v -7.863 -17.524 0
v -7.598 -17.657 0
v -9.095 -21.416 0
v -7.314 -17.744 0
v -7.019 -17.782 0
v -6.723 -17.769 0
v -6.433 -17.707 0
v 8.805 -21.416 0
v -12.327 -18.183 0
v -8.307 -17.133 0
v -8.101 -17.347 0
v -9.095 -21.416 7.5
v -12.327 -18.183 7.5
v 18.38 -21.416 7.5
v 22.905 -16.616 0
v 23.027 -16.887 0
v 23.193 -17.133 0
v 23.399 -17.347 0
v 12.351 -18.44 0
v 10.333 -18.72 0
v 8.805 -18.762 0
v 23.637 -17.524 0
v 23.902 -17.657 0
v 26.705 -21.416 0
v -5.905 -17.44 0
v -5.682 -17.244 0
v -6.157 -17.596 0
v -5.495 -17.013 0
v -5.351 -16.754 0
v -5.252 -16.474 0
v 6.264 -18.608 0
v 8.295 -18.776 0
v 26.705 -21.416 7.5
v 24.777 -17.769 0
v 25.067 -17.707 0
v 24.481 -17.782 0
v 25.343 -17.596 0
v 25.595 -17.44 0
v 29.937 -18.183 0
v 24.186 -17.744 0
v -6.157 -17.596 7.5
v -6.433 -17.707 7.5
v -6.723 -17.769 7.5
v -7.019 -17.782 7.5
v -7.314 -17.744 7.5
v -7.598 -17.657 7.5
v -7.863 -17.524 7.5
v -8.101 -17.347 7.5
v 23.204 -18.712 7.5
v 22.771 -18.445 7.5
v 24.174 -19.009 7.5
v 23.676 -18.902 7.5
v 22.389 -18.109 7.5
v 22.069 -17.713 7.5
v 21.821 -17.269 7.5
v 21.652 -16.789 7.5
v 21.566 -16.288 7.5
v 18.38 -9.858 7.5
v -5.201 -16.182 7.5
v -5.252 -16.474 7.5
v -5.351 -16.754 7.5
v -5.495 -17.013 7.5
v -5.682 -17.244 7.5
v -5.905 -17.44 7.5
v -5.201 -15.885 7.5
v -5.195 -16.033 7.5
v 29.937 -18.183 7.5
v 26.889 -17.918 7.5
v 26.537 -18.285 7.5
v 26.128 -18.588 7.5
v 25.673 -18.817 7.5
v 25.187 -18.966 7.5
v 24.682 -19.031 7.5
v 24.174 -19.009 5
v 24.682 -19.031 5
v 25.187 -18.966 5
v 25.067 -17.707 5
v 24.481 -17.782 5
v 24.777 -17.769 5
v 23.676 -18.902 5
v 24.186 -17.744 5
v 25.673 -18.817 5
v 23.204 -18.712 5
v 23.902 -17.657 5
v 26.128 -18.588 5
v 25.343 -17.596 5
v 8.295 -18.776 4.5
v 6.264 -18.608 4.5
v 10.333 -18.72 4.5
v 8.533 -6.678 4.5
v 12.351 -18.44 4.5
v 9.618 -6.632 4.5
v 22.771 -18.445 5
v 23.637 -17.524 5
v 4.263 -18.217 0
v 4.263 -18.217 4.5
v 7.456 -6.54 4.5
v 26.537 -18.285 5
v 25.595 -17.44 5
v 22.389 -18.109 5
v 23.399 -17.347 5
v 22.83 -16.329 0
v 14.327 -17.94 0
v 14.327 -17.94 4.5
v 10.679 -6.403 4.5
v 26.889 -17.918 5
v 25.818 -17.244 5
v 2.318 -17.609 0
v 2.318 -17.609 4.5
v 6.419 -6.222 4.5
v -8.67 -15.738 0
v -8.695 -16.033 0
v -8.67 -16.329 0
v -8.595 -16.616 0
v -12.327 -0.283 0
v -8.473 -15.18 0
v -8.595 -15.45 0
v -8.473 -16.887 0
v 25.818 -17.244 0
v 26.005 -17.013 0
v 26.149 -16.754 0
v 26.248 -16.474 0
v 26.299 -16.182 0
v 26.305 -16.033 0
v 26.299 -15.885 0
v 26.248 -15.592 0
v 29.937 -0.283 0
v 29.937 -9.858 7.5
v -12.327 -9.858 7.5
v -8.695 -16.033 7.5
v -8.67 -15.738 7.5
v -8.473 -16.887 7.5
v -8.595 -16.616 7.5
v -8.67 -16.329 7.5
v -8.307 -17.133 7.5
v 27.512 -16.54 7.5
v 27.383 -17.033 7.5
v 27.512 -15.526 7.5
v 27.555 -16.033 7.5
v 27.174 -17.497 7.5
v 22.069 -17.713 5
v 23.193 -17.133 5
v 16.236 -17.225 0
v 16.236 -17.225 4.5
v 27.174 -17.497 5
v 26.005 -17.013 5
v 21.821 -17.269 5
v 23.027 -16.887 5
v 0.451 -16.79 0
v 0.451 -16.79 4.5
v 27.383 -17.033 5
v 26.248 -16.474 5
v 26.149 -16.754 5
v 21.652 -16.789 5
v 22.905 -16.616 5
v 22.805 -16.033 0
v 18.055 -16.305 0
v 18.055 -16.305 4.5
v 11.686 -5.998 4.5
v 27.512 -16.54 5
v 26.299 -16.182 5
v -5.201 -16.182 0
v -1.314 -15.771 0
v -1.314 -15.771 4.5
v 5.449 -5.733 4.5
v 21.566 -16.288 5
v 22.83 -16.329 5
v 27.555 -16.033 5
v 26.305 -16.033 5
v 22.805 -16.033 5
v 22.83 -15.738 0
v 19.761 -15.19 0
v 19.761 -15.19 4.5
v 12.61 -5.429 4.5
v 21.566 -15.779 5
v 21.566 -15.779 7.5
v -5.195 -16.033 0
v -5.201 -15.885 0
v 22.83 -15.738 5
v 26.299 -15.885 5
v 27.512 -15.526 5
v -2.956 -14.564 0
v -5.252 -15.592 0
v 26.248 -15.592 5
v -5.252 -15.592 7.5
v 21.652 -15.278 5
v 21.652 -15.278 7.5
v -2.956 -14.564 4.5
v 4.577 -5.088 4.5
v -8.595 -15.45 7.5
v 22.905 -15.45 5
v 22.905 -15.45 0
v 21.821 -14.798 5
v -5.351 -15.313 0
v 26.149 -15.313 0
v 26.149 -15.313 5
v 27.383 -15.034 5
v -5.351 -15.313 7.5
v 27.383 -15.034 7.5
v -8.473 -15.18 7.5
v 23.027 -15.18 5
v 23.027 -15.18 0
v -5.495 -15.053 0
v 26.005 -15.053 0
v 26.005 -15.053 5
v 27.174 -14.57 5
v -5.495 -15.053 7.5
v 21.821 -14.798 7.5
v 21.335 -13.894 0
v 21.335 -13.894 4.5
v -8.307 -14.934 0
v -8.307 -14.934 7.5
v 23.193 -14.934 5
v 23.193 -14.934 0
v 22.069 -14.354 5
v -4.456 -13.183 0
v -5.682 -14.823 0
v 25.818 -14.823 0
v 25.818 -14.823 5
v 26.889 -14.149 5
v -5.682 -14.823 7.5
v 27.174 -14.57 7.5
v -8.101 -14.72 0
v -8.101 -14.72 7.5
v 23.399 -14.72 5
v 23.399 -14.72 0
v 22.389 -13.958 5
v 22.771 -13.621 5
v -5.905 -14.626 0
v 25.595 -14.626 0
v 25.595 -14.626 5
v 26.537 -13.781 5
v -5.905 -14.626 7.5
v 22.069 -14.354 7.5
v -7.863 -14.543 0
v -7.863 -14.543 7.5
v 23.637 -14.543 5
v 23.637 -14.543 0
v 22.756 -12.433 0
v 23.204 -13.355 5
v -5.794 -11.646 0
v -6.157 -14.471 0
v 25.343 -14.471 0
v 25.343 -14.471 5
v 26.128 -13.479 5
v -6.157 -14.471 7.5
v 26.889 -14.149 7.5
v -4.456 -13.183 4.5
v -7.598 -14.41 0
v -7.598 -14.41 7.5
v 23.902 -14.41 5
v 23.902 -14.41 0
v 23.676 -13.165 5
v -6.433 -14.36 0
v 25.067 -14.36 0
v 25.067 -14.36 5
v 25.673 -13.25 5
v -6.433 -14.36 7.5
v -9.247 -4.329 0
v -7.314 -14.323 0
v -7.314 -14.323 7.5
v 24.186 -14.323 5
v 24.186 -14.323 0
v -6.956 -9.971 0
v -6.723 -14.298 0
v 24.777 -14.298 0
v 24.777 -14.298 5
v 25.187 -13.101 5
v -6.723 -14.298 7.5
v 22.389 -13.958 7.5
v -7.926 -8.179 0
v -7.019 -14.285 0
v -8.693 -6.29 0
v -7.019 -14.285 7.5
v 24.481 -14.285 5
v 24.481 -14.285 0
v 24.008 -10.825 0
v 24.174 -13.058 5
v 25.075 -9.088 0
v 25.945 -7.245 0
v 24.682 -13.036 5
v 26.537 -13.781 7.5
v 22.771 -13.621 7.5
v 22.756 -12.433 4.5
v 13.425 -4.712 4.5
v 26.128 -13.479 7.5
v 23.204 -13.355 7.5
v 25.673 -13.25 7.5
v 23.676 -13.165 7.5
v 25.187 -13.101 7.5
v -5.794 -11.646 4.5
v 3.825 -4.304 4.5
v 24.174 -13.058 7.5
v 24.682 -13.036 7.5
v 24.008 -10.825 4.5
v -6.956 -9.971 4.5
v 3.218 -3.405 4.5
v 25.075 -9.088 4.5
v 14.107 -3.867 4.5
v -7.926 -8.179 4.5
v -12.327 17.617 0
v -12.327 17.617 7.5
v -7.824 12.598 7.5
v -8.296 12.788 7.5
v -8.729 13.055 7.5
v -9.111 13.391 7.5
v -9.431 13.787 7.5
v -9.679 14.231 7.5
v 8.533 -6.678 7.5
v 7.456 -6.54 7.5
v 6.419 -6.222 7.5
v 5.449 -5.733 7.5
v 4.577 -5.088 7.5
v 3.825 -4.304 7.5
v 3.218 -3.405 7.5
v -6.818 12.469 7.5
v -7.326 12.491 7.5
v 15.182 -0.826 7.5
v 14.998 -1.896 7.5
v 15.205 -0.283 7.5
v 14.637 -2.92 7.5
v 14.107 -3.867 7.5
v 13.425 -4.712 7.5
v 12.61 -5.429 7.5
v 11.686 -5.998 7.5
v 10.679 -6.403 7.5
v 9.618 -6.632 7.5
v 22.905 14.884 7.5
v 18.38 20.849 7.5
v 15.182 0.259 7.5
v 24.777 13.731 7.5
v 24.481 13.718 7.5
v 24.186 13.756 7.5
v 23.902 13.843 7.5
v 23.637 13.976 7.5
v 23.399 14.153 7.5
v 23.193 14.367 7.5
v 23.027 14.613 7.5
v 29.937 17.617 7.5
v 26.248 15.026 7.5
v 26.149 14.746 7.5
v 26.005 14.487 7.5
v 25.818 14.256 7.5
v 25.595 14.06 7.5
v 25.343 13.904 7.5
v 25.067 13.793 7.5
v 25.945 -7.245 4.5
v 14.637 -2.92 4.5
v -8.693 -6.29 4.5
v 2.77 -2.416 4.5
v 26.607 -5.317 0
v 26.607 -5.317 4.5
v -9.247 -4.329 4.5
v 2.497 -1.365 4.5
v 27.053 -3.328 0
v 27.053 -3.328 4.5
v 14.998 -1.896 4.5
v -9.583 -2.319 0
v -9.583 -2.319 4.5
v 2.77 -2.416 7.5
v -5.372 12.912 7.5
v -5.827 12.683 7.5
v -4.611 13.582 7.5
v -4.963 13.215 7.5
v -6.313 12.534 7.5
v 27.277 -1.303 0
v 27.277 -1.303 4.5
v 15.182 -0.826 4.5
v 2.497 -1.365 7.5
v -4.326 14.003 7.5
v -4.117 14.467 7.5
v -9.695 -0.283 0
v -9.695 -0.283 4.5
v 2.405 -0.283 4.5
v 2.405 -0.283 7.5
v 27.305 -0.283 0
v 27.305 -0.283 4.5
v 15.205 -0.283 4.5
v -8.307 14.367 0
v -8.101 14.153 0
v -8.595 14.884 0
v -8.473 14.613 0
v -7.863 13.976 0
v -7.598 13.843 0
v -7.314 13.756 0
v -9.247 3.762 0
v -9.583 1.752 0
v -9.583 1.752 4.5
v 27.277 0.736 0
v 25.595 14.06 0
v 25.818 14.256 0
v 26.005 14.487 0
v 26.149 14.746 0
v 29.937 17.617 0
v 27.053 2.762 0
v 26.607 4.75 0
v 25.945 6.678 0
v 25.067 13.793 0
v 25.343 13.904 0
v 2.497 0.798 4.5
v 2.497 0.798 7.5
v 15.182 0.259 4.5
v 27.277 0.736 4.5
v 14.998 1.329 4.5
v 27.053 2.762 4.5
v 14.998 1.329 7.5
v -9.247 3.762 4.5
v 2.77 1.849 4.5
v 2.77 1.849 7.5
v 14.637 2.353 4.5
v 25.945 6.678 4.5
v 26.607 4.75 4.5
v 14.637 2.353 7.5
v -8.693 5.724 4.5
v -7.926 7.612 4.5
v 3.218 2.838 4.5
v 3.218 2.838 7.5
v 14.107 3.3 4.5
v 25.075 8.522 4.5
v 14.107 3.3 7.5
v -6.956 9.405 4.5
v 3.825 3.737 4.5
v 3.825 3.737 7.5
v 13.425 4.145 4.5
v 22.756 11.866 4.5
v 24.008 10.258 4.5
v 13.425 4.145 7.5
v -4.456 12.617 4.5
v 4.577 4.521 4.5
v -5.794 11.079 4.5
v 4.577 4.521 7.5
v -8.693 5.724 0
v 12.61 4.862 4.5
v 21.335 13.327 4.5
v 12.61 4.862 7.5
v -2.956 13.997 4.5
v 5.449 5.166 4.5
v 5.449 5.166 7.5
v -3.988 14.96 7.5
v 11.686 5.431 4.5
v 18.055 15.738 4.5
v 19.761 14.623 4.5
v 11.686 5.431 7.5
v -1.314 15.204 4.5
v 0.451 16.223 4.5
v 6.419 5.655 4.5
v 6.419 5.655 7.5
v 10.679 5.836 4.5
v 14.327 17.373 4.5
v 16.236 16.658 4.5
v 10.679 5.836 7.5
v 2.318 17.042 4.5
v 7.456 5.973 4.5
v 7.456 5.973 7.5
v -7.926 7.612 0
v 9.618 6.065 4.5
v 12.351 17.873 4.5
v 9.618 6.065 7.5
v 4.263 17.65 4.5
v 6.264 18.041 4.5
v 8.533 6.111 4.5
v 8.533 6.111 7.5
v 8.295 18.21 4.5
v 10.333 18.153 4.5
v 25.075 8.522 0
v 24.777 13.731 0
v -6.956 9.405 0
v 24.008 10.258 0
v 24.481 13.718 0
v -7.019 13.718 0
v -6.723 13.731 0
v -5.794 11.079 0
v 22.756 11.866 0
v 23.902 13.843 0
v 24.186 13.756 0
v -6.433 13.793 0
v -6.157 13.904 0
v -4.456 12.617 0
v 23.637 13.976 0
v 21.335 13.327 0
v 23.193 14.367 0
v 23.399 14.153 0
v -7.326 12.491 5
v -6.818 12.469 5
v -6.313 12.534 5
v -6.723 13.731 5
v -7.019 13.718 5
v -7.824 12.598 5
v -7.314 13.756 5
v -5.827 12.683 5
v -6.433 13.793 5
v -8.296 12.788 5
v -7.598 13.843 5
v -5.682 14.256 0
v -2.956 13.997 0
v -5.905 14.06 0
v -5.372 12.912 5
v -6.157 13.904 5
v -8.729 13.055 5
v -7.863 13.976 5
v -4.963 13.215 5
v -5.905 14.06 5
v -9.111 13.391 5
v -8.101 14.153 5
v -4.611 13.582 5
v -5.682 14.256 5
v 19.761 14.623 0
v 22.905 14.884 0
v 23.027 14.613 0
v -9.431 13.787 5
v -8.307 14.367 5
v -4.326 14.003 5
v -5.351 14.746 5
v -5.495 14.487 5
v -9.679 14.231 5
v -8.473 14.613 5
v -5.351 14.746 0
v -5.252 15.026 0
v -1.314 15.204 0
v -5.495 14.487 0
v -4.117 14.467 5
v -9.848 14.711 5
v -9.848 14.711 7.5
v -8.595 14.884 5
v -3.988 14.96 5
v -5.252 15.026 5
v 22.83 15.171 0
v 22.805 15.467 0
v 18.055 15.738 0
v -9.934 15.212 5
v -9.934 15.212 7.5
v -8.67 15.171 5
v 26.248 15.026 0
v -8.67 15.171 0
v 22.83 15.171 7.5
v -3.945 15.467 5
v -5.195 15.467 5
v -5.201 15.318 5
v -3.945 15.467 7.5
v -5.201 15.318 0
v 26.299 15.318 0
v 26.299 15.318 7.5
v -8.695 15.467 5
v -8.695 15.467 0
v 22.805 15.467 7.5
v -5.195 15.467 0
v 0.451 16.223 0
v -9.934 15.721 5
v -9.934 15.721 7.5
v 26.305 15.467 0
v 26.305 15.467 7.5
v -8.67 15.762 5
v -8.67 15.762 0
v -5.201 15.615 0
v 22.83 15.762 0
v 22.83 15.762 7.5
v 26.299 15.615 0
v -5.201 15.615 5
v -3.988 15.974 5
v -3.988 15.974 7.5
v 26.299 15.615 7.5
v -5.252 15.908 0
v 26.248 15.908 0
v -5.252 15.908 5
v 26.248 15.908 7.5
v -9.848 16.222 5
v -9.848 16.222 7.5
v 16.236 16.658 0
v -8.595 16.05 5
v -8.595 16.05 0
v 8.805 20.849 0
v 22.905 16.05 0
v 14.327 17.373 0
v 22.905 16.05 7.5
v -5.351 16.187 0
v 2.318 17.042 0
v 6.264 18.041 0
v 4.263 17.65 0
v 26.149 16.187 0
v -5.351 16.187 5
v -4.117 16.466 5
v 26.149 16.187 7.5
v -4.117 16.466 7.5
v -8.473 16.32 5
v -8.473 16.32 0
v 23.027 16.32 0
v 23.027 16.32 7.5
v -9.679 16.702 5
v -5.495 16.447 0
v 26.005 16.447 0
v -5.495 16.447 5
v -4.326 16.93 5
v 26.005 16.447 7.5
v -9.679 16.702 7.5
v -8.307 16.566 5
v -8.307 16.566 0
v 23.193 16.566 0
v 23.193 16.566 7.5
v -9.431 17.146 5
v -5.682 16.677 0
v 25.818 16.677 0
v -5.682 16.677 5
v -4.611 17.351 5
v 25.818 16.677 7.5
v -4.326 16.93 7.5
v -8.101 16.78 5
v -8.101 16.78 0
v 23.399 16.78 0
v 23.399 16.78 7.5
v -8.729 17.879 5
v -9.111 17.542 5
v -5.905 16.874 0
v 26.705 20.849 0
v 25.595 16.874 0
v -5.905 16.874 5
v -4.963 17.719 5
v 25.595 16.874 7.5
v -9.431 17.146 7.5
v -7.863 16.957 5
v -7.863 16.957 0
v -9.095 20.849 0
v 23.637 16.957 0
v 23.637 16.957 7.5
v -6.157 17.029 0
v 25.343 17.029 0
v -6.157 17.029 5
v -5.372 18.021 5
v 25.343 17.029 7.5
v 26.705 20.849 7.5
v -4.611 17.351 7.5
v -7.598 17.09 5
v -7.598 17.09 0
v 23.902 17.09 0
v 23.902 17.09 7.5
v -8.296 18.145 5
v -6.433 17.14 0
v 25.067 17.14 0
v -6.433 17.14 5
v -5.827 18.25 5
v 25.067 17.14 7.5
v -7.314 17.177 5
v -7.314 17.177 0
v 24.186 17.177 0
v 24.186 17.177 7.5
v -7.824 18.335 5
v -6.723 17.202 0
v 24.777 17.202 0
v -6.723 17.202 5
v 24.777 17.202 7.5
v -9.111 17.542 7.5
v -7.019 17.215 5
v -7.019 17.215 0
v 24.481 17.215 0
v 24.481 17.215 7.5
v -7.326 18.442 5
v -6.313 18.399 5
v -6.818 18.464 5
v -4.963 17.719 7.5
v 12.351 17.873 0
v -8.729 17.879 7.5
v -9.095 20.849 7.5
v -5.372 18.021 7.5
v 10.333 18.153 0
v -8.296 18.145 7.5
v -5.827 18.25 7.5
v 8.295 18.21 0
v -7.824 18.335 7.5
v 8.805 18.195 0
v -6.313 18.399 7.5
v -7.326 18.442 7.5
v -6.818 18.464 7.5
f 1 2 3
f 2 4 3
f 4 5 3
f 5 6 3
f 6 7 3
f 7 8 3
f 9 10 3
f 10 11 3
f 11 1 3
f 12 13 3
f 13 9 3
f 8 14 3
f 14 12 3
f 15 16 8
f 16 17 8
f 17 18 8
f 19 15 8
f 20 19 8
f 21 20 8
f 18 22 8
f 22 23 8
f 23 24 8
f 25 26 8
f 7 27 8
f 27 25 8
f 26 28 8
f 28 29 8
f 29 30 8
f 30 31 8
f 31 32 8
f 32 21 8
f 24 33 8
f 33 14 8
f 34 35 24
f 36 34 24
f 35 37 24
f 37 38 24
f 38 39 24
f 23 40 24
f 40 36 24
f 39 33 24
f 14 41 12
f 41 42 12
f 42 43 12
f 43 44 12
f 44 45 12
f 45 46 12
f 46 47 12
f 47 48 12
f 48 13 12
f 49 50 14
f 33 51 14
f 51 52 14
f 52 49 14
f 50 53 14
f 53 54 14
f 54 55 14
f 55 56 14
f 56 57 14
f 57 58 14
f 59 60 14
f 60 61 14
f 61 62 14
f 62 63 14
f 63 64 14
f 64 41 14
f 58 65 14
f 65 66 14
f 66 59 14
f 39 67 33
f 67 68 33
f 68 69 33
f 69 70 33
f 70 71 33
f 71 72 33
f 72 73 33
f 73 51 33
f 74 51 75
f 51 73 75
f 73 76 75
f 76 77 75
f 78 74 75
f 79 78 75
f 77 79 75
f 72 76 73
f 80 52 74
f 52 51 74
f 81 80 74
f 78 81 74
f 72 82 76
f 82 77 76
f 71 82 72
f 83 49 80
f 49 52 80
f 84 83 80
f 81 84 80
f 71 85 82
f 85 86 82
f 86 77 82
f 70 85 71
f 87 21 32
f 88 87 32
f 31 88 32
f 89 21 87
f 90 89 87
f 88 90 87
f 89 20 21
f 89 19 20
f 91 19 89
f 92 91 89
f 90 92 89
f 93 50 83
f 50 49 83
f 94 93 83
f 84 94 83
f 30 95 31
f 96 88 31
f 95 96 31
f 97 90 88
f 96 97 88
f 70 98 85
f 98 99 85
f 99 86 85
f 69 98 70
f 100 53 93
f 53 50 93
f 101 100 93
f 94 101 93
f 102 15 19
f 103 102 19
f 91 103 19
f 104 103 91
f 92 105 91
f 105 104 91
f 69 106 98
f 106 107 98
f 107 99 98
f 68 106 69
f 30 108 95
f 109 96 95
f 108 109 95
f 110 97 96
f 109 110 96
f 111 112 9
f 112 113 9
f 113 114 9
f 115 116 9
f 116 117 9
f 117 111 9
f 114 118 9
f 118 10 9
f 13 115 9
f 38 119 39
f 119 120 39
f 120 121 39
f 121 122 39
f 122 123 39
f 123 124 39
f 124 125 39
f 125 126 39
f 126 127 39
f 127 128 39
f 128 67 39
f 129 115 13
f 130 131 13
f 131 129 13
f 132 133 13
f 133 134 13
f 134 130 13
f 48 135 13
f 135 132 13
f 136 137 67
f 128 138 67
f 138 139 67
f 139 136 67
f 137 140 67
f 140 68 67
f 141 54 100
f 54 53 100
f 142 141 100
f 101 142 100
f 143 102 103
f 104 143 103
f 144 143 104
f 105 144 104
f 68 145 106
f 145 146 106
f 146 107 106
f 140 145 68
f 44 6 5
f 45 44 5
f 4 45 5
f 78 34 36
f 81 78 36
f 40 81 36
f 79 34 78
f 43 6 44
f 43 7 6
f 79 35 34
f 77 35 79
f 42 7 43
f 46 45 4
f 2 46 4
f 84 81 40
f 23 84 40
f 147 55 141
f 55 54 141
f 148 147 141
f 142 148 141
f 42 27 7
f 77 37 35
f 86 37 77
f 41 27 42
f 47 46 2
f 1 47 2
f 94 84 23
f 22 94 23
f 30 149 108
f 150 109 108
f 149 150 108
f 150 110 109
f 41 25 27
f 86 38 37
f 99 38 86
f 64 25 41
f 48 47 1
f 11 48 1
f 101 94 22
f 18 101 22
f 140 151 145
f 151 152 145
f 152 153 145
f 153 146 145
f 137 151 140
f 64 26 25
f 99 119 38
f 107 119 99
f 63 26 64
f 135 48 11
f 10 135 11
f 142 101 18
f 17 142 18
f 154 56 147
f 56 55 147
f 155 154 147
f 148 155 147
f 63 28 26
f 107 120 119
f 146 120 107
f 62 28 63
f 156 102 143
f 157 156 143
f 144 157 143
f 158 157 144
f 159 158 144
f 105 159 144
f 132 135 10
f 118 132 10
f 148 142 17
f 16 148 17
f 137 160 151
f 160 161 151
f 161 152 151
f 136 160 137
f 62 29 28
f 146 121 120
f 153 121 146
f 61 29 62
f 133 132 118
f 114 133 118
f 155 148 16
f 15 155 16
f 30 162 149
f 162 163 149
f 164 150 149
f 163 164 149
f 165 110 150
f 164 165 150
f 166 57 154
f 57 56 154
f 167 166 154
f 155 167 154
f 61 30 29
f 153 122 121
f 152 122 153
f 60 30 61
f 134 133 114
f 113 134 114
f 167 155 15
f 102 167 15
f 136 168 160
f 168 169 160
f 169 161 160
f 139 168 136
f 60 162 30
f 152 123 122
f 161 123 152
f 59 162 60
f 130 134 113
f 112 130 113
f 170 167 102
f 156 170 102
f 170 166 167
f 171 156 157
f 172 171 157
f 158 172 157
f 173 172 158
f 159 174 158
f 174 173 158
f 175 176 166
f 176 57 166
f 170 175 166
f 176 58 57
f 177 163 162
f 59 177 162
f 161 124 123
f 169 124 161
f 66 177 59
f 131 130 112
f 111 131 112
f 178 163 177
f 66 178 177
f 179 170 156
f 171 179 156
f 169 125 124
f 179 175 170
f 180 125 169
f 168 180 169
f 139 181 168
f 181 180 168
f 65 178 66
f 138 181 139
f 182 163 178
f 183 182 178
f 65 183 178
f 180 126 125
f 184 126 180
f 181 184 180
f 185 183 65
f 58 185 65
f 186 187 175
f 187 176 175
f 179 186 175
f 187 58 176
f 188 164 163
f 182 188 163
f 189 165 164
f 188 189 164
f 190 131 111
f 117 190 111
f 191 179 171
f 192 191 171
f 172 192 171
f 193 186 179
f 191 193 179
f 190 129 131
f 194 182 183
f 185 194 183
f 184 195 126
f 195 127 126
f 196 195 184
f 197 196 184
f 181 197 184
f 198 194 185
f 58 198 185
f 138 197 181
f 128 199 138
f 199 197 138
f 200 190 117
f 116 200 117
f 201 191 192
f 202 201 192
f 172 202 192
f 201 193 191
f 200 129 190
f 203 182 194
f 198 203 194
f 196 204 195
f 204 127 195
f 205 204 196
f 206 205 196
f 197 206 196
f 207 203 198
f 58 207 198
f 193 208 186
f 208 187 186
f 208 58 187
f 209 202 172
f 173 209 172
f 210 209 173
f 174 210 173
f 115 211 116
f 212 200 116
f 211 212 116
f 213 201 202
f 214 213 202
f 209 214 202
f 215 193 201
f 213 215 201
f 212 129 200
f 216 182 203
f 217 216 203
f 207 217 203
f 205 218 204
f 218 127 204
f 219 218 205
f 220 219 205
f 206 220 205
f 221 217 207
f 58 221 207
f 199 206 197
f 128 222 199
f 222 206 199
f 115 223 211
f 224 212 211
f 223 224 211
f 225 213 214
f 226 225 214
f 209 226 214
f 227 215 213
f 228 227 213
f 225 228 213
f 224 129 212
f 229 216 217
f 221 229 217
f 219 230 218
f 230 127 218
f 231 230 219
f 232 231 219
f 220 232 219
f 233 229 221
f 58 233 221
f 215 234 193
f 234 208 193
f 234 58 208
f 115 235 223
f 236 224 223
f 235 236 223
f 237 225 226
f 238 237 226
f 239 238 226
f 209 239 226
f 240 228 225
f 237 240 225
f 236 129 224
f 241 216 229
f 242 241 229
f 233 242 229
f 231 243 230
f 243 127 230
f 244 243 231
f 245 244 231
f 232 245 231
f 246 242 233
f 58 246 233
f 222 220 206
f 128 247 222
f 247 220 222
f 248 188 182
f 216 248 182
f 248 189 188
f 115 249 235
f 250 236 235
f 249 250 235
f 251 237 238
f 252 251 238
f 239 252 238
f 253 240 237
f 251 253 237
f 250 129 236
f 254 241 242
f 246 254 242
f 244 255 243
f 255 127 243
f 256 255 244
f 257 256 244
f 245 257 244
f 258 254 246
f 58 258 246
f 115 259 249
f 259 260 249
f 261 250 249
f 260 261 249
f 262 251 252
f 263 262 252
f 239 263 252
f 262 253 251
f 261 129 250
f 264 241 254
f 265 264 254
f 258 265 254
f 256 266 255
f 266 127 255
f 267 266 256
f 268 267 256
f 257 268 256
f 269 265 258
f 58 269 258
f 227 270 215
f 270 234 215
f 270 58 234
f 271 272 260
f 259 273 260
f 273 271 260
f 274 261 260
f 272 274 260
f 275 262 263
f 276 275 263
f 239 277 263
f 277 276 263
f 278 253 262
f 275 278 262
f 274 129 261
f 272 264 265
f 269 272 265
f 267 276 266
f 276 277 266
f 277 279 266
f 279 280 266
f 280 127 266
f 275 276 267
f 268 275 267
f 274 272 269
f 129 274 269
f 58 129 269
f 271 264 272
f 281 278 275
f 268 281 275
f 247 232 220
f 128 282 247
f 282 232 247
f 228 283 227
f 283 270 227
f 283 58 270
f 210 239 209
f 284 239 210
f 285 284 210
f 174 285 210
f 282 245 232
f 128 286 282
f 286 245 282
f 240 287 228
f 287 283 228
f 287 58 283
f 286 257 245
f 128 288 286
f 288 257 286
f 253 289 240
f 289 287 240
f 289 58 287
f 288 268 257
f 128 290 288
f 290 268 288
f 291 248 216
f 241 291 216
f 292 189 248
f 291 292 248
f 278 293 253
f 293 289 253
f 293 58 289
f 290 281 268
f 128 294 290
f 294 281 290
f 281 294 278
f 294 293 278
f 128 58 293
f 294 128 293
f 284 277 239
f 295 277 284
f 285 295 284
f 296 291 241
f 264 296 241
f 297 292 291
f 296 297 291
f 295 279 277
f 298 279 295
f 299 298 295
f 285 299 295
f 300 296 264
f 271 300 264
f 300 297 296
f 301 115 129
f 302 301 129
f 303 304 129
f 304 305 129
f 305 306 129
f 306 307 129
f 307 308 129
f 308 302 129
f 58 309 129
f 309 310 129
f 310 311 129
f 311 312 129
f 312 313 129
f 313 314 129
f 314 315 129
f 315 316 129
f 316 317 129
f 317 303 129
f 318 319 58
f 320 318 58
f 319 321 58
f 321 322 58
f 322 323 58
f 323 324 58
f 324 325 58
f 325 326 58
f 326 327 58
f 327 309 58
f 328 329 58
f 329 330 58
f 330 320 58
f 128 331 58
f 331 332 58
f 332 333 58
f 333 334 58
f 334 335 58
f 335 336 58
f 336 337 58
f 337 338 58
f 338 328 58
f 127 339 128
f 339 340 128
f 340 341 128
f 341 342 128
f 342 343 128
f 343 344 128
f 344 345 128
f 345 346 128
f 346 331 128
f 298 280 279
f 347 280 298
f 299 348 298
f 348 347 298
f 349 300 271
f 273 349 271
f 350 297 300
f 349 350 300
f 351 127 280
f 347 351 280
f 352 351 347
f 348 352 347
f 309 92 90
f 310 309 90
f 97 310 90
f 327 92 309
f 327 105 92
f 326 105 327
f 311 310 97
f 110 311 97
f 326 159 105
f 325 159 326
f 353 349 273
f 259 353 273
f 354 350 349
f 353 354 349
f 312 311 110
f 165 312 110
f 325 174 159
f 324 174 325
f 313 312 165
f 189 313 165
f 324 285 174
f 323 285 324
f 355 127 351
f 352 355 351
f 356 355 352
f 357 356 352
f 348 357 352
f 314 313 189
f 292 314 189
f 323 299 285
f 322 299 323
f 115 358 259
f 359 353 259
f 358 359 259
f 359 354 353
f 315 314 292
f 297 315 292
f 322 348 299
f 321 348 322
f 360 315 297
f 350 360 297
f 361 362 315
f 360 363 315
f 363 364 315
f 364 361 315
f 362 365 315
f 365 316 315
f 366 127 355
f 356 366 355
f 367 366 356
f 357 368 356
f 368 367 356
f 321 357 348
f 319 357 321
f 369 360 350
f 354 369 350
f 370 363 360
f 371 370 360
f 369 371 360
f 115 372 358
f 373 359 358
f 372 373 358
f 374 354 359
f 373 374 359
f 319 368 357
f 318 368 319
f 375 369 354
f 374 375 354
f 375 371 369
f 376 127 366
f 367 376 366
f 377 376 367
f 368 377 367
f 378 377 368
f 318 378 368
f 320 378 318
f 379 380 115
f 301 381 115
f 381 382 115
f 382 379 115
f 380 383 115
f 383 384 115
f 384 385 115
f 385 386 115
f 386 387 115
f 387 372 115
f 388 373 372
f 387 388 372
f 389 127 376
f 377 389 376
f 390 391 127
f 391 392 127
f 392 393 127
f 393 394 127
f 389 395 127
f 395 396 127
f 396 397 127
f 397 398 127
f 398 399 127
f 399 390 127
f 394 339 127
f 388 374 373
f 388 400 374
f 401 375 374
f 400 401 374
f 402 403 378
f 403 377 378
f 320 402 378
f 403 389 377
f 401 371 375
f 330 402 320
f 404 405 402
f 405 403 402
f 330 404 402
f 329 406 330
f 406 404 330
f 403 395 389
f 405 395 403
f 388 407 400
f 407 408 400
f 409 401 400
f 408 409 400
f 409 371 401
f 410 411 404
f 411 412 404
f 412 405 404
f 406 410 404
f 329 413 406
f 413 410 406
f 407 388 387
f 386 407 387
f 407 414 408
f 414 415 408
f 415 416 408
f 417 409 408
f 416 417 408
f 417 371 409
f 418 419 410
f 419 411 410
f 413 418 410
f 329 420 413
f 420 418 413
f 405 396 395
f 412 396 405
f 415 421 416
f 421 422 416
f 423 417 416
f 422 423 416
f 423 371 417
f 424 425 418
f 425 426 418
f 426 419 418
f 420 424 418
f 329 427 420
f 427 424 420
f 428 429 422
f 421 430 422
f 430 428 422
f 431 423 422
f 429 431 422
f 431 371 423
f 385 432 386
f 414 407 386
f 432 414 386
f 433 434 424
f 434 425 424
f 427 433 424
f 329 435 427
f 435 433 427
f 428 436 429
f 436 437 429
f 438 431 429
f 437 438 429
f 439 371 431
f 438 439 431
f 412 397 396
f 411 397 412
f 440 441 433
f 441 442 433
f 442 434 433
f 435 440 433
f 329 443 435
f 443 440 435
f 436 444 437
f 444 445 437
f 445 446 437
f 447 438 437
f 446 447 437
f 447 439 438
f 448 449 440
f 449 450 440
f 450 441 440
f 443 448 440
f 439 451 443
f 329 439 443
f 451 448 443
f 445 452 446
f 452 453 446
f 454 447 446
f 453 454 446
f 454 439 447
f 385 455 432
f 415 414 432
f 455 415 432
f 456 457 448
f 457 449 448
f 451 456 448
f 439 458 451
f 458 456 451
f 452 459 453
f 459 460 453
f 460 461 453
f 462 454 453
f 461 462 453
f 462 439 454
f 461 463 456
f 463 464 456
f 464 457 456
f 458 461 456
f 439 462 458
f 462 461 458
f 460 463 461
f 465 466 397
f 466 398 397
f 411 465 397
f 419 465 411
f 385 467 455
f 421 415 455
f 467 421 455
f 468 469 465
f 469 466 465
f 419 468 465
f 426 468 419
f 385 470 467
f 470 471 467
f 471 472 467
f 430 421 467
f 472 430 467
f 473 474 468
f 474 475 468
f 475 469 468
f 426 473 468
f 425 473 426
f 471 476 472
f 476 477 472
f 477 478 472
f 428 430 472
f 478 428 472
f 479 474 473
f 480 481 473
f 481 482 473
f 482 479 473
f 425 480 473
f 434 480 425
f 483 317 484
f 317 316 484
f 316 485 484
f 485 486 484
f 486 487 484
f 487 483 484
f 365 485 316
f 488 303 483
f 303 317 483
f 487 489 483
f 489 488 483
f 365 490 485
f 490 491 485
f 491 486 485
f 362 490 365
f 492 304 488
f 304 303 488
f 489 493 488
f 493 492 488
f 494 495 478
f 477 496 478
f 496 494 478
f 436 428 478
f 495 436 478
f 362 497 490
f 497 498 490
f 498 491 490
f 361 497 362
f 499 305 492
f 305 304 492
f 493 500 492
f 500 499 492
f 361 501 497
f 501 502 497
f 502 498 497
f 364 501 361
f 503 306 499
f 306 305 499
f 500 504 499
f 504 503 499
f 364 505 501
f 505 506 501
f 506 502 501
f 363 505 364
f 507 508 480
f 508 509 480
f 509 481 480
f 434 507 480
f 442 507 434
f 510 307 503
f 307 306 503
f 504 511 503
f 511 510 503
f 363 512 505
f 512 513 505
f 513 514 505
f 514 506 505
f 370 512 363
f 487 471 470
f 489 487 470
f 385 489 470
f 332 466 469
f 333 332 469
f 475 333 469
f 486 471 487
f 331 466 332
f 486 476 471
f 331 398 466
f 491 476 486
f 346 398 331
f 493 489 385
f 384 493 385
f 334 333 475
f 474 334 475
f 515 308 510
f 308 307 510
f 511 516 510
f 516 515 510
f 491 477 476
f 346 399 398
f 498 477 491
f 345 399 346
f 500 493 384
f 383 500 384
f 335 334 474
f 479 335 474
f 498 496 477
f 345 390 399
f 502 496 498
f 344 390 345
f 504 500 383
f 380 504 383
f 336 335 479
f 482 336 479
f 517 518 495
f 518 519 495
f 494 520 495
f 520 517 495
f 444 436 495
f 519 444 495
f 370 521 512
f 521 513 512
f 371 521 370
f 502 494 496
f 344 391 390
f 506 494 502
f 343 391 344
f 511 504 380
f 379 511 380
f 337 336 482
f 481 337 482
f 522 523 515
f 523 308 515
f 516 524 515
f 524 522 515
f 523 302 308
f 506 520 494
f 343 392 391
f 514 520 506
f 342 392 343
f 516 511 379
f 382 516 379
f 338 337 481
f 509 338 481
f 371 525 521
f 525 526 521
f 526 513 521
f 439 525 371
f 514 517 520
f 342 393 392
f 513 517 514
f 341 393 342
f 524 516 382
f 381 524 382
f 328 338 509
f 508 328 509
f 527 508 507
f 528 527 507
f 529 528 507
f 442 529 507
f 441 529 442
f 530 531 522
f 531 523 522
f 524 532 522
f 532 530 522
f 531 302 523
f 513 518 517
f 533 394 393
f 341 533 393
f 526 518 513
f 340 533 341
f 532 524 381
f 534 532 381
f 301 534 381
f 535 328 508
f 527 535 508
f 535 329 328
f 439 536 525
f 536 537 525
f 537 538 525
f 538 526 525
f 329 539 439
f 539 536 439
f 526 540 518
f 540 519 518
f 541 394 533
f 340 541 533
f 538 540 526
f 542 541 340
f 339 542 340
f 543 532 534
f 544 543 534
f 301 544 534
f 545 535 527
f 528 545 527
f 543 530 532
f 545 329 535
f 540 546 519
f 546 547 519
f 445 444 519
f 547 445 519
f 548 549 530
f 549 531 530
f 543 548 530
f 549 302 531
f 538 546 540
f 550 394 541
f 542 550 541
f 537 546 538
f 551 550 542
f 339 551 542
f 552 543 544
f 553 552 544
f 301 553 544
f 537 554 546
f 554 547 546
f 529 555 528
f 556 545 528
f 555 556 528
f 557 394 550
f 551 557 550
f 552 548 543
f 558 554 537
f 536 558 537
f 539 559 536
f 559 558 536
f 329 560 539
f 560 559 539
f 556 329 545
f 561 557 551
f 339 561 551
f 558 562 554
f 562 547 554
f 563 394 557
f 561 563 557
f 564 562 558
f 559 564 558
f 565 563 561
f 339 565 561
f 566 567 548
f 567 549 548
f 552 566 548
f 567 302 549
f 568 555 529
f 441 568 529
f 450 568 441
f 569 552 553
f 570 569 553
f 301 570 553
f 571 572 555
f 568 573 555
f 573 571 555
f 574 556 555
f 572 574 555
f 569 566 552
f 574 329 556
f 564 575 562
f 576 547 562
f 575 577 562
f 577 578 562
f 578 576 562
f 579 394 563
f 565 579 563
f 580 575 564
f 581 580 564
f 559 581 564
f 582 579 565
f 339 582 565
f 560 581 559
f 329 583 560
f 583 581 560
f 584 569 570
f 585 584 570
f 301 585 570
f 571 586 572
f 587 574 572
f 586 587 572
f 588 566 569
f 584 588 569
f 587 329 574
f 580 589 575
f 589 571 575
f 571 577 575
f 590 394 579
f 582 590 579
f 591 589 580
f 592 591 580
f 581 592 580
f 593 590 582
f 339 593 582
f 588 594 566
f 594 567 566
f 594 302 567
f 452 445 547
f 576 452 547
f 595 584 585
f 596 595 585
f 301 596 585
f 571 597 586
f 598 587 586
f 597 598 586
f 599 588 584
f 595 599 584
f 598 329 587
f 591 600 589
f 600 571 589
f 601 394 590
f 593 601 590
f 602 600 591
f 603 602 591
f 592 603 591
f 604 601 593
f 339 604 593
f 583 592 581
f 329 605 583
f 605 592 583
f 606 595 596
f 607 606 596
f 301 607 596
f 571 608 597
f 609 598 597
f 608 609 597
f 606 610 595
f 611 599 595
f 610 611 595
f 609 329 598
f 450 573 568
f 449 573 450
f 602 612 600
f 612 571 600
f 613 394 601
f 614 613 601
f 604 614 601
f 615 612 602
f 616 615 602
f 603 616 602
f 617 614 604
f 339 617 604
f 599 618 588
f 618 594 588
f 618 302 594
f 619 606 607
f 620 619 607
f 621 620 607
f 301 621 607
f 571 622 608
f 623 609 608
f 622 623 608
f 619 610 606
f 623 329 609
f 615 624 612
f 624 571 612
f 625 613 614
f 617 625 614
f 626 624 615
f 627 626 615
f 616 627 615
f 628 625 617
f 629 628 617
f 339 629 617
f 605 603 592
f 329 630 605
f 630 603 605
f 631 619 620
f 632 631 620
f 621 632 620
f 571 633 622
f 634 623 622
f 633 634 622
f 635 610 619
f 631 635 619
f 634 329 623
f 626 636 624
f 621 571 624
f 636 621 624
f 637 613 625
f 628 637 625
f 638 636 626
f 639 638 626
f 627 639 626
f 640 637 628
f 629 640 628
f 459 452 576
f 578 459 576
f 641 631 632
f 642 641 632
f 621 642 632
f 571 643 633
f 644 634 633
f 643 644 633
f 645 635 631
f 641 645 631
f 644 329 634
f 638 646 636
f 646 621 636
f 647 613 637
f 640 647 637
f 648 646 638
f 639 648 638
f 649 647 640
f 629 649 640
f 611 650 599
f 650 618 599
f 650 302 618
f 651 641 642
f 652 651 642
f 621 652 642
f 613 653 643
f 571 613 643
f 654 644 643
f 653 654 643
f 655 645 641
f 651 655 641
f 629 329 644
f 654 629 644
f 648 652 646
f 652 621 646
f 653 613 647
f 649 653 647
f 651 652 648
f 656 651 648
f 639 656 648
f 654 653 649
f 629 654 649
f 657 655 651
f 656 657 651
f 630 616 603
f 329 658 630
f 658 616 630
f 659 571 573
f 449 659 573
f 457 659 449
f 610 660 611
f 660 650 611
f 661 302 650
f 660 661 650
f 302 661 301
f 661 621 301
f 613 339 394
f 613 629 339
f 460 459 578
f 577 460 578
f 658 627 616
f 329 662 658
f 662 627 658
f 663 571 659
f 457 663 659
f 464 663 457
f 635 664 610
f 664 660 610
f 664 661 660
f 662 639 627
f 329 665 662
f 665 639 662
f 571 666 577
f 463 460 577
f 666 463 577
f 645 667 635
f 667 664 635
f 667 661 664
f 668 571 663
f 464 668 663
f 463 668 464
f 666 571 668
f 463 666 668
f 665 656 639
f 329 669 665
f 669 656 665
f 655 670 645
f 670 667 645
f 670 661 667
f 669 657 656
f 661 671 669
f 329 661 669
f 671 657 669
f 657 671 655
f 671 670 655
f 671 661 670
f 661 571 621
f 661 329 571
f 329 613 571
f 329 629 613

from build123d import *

# Parameters (mm, degrees)
SKETCH1_R           = 18.5
SKETCH1_R_2         = 1.75
BOSS_EXTRUDE1_DEPTH = 4.5
SKETCH2_R           = 6.4
SKETCH2_R_2         = 1.75
BOSS_EXTRUDE2_DEPTH = 3
SKETCH3_R           = 3
CUT_EXTRUDE1_DEPTH  = 2.5


with BuildPart() as part:
    # Sketch1 → Boss-Extrude1 (new body)
    with BuildSketch(Plane.XY):
        Polygon((-12.327463607, 17.616562478), (-12.327463607, -18.183437522), (-9.095169285, -21.415731844), (26.704830715, -21.415731844), (29.937125036, -18.183437522), (29.937125036, 17.616562478), (26.704830715, 20.848856799), (-9.095169285, 20.848856799), align=None)
        with Locations((8.804830715, -0.283437522)):
            Circle(SKETCH1_R, mode=Mode.SUBTRACT)
        with Locations((-6.945169285, 15.466562478)):
            Circle(SKETCH1_R_2, mode=Mode.SUBTRACT)
        with Locations((-6.945169285, -16.033437522)):
            Circle(SKETCH1_R_2, mode=Mode.SUBTRACT)
        with Locations((24.554830715, -16.033437522)):
            Circle(SKETCH1_R_2, mode=Mode.SUBTRACT)
        with Locations((24.554830715, 15.466562478)):
            Circle(SKETCH1_R_2, mode=Mode.SUBTRACT)
    extrude(amount=BOSS_EXTRUDE1_DEPTH)

    # Sketch2 → Boss-Extrude2 (add)
    with BuildSketch(Plane.XY.offset(4.5)):
        Polygon((-12.327463607, 17.616562478), (-9.095169285, 20.848856799), (26.704830715, 20.848856799), (29.937125036, 17.616562478), (29.937125036, -18.183437522), (26.704830715, -21.415731844), (-9.095169285, -21.415731844), (-12.327463607, -18.183437522), align=None)
        with Locations((8.804830715, -0.283437522)):
            Circle(SKETCH2_R, mode=Mode.SUBTRACT)
        with Locations((-6.945169285, 15.466562478)):
            Circle(SKETCH2_R_2, mode=Mode.SUBTRACT)
        with Locations((24.554830715, 15.466562478)):
            Circle(SKETCH2_R_2, mode=Mode.SUBTRACT)
        with Locations((24.554830715, -16.033437522)):
            Circle(SKETCH2_R_2, mode=Mode.SUBTRACT)
        with Locations((-6.945169285, -16.033437522)):
            Circle(SKETCH2_R_2, mode=Mode.SUBTRACT)
    extrude(amount=BOSS_EXTRUDE2_DEPTH)

    # Sketch3 → Cut-Extrude1 (cut)
    with BuildSketch(Plane.XY.offset(7.5)):
        with Locations((-6.945169285, 15.466562478)):
            Circle(SKETCH3_R)
        with Locations((24.554830715, -16.033437522)):
            Circle(SKETCH3_R)
    extrude(amount=-CUT_EXTRUDE1_DEPTH, mode=Mode.SUBTRACT)


solid = part.part
